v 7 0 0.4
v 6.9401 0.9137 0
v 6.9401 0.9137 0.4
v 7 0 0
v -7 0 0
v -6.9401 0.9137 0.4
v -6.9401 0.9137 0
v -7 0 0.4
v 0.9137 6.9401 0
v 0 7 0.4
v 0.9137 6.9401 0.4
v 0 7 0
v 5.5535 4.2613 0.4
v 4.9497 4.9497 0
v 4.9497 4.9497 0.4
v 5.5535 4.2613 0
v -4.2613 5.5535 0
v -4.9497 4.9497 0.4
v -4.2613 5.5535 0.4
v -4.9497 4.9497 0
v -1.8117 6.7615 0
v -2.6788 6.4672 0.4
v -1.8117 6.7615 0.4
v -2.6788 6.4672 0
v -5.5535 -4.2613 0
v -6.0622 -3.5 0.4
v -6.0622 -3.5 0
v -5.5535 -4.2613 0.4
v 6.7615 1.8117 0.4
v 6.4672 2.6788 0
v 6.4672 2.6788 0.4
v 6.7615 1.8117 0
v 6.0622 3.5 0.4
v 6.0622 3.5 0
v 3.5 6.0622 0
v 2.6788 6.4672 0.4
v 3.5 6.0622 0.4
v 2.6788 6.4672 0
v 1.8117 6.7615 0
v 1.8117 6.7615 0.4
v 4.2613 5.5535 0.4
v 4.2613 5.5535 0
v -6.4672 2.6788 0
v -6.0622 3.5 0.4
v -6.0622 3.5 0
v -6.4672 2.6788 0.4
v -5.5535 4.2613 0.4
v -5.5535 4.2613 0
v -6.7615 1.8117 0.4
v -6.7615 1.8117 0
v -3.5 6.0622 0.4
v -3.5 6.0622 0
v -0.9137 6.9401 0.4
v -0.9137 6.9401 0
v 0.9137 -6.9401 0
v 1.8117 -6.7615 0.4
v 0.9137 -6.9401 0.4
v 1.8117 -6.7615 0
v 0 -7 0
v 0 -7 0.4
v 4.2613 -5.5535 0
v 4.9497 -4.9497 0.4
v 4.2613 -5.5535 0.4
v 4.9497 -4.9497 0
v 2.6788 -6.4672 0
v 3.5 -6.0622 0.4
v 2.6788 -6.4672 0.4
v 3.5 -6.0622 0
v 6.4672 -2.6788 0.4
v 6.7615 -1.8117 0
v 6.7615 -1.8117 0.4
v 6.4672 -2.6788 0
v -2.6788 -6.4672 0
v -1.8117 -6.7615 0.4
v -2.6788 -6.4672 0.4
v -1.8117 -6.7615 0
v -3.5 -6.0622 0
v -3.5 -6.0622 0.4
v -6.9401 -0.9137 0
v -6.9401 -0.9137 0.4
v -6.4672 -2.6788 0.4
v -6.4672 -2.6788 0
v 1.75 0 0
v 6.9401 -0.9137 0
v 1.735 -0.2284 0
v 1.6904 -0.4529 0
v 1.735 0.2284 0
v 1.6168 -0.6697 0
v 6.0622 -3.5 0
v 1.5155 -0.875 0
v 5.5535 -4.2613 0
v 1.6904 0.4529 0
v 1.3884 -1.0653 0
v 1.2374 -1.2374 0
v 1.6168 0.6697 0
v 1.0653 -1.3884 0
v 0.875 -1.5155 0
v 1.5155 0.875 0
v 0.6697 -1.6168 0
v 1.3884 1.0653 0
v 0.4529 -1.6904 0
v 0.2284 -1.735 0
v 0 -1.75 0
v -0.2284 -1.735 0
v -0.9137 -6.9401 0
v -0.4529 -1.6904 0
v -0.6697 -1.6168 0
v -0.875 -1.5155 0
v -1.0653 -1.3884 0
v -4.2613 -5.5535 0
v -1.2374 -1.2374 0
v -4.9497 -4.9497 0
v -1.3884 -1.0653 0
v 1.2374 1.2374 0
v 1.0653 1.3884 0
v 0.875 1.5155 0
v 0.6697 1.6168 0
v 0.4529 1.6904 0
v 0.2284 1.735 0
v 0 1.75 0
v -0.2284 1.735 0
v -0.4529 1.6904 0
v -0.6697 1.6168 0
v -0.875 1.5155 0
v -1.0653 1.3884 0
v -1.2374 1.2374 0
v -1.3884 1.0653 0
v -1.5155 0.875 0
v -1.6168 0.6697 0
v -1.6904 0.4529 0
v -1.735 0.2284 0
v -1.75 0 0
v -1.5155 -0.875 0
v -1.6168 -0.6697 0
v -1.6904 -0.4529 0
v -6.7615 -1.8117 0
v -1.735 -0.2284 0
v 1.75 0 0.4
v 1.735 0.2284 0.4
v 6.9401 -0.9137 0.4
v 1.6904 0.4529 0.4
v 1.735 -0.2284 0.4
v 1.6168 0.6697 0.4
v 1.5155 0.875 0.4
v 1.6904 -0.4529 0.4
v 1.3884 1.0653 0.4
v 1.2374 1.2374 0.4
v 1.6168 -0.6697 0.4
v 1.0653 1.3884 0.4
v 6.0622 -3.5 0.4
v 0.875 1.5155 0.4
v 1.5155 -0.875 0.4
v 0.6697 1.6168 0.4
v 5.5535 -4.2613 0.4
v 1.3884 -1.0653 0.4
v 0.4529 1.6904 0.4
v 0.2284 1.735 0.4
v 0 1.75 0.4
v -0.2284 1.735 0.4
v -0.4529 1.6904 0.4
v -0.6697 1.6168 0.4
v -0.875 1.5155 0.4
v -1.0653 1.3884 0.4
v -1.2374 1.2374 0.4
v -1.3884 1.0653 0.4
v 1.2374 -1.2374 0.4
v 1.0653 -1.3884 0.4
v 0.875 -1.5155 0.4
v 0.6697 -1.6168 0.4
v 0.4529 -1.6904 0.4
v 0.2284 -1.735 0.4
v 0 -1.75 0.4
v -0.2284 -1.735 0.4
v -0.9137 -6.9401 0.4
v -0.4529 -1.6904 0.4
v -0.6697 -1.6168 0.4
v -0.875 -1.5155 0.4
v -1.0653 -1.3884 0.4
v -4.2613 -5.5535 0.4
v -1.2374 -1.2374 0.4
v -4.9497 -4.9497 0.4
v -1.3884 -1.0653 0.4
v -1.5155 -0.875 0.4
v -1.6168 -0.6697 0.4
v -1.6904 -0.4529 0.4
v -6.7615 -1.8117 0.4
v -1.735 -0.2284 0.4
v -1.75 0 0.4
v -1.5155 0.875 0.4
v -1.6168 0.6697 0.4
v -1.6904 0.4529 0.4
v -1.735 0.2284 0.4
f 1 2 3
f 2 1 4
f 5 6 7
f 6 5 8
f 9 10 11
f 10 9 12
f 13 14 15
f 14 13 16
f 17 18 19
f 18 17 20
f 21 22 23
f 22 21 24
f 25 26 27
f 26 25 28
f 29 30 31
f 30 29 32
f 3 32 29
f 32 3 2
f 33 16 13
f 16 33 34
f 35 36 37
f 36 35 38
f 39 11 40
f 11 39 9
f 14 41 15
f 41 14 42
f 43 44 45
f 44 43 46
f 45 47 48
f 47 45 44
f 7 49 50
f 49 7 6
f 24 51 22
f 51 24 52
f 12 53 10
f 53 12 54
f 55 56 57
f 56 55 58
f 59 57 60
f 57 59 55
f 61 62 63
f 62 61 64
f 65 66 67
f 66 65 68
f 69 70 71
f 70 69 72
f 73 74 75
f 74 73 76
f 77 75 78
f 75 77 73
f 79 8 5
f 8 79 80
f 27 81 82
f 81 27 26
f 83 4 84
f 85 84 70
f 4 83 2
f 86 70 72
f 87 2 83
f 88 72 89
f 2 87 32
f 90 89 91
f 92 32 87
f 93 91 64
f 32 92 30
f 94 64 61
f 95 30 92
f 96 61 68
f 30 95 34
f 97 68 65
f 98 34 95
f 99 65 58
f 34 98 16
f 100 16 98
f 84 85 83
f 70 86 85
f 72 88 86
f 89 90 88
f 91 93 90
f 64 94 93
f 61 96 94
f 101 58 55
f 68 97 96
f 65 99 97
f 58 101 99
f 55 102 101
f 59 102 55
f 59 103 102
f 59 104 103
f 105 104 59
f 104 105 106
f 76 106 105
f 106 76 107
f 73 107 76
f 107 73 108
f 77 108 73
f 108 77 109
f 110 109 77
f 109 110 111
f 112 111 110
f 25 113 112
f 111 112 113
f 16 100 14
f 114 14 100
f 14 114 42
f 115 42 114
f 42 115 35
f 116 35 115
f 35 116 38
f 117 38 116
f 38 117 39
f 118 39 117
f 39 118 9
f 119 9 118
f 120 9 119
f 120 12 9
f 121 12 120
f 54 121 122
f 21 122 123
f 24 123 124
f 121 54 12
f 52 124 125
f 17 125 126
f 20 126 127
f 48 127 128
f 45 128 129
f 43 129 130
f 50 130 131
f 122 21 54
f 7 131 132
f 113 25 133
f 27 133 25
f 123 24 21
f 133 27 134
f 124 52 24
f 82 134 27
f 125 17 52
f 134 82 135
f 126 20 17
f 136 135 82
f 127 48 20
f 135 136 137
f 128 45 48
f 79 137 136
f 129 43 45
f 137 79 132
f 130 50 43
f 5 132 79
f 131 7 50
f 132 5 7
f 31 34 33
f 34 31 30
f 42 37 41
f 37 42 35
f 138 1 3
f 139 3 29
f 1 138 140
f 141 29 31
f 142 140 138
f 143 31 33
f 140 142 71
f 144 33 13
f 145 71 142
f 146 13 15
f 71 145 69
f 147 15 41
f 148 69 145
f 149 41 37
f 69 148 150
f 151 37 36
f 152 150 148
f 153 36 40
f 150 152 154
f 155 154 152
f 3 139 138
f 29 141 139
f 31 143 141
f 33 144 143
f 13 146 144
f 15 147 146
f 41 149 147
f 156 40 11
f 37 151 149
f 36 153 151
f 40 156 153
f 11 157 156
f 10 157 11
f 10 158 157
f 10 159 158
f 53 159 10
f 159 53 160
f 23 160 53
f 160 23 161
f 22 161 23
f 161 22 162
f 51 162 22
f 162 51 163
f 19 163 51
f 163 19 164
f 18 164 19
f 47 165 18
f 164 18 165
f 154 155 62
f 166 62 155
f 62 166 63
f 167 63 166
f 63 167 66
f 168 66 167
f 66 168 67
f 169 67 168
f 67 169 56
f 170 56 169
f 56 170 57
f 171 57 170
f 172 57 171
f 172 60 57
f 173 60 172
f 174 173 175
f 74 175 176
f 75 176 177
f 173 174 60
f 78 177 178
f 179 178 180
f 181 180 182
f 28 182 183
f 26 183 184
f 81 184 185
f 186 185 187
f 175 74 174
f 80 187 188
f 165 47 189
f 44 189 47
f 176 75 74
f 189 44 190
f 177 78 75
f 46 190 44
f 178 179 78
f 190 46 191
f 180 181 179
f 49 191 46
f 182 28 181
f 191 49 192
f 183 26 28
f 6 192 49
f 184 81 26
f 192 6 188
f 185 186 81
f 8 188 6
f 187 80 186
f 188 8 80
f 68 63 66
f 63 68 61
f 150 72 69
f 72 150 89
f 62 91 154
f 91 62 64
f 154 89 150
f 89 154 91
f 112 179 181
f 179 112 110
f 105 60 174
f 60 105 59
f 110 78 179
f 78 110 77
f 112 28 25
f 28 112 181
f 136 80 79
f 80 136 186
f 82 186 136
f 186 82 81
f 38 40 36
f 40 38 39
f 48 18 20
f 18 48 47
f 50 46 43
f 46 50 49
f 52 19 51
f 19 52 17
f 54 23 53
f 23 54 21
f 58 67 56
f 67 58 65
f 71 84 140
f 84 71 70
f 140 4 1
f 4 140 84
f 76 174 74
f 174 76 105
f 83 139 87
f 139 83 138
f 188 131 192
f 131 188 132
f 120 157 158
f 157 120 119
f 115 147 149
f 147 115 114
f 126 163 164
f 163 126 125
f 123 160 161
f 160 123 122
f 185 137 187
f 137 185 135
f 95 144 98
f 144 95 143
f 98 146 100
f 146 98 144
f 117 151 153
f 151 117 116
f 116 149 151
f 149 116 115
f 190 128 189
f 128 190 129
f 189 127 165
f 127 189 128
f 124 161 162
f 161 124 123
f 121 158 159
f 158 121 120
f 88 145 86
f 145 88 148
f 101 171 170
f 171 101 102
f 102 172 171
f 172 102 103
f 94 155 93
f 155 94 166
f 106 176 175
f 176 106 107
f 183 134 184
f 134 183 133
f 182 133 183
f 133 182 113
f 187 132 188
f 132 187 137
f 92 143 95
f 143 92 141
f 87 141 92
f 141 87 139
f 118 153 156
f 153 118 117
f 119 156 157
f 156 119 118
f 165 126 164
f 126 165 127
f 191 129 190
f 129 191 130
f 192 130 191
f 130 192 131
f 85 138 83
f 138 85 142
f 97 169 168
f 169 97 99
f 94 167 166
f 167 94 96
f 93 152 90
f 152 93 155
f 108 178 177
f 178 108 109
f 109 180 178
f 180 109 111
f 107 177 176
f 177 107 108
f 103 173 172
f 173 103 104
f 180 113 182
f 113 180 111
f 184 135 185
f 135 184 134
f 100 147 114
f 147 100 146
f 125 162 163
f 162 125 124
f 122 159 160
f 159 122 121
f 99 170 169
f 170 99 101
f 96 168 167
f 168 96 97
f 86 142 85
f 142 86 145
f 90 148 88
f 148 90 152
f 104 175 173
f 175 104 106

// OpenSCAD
// Gen-DZ — POST SHIM washer (2026-11-02): 0.4 mm levelling shim under the stator at a post (stack as needed). Print x12.
include <parameters.scad>;
$fn = 48;
difference() {
    cylinder(d=14, h=post_shim_t);
    translate([0, 0, -0.1]) cylinder(d=m3_clear, h=post_shim_t + 0.2);
}
